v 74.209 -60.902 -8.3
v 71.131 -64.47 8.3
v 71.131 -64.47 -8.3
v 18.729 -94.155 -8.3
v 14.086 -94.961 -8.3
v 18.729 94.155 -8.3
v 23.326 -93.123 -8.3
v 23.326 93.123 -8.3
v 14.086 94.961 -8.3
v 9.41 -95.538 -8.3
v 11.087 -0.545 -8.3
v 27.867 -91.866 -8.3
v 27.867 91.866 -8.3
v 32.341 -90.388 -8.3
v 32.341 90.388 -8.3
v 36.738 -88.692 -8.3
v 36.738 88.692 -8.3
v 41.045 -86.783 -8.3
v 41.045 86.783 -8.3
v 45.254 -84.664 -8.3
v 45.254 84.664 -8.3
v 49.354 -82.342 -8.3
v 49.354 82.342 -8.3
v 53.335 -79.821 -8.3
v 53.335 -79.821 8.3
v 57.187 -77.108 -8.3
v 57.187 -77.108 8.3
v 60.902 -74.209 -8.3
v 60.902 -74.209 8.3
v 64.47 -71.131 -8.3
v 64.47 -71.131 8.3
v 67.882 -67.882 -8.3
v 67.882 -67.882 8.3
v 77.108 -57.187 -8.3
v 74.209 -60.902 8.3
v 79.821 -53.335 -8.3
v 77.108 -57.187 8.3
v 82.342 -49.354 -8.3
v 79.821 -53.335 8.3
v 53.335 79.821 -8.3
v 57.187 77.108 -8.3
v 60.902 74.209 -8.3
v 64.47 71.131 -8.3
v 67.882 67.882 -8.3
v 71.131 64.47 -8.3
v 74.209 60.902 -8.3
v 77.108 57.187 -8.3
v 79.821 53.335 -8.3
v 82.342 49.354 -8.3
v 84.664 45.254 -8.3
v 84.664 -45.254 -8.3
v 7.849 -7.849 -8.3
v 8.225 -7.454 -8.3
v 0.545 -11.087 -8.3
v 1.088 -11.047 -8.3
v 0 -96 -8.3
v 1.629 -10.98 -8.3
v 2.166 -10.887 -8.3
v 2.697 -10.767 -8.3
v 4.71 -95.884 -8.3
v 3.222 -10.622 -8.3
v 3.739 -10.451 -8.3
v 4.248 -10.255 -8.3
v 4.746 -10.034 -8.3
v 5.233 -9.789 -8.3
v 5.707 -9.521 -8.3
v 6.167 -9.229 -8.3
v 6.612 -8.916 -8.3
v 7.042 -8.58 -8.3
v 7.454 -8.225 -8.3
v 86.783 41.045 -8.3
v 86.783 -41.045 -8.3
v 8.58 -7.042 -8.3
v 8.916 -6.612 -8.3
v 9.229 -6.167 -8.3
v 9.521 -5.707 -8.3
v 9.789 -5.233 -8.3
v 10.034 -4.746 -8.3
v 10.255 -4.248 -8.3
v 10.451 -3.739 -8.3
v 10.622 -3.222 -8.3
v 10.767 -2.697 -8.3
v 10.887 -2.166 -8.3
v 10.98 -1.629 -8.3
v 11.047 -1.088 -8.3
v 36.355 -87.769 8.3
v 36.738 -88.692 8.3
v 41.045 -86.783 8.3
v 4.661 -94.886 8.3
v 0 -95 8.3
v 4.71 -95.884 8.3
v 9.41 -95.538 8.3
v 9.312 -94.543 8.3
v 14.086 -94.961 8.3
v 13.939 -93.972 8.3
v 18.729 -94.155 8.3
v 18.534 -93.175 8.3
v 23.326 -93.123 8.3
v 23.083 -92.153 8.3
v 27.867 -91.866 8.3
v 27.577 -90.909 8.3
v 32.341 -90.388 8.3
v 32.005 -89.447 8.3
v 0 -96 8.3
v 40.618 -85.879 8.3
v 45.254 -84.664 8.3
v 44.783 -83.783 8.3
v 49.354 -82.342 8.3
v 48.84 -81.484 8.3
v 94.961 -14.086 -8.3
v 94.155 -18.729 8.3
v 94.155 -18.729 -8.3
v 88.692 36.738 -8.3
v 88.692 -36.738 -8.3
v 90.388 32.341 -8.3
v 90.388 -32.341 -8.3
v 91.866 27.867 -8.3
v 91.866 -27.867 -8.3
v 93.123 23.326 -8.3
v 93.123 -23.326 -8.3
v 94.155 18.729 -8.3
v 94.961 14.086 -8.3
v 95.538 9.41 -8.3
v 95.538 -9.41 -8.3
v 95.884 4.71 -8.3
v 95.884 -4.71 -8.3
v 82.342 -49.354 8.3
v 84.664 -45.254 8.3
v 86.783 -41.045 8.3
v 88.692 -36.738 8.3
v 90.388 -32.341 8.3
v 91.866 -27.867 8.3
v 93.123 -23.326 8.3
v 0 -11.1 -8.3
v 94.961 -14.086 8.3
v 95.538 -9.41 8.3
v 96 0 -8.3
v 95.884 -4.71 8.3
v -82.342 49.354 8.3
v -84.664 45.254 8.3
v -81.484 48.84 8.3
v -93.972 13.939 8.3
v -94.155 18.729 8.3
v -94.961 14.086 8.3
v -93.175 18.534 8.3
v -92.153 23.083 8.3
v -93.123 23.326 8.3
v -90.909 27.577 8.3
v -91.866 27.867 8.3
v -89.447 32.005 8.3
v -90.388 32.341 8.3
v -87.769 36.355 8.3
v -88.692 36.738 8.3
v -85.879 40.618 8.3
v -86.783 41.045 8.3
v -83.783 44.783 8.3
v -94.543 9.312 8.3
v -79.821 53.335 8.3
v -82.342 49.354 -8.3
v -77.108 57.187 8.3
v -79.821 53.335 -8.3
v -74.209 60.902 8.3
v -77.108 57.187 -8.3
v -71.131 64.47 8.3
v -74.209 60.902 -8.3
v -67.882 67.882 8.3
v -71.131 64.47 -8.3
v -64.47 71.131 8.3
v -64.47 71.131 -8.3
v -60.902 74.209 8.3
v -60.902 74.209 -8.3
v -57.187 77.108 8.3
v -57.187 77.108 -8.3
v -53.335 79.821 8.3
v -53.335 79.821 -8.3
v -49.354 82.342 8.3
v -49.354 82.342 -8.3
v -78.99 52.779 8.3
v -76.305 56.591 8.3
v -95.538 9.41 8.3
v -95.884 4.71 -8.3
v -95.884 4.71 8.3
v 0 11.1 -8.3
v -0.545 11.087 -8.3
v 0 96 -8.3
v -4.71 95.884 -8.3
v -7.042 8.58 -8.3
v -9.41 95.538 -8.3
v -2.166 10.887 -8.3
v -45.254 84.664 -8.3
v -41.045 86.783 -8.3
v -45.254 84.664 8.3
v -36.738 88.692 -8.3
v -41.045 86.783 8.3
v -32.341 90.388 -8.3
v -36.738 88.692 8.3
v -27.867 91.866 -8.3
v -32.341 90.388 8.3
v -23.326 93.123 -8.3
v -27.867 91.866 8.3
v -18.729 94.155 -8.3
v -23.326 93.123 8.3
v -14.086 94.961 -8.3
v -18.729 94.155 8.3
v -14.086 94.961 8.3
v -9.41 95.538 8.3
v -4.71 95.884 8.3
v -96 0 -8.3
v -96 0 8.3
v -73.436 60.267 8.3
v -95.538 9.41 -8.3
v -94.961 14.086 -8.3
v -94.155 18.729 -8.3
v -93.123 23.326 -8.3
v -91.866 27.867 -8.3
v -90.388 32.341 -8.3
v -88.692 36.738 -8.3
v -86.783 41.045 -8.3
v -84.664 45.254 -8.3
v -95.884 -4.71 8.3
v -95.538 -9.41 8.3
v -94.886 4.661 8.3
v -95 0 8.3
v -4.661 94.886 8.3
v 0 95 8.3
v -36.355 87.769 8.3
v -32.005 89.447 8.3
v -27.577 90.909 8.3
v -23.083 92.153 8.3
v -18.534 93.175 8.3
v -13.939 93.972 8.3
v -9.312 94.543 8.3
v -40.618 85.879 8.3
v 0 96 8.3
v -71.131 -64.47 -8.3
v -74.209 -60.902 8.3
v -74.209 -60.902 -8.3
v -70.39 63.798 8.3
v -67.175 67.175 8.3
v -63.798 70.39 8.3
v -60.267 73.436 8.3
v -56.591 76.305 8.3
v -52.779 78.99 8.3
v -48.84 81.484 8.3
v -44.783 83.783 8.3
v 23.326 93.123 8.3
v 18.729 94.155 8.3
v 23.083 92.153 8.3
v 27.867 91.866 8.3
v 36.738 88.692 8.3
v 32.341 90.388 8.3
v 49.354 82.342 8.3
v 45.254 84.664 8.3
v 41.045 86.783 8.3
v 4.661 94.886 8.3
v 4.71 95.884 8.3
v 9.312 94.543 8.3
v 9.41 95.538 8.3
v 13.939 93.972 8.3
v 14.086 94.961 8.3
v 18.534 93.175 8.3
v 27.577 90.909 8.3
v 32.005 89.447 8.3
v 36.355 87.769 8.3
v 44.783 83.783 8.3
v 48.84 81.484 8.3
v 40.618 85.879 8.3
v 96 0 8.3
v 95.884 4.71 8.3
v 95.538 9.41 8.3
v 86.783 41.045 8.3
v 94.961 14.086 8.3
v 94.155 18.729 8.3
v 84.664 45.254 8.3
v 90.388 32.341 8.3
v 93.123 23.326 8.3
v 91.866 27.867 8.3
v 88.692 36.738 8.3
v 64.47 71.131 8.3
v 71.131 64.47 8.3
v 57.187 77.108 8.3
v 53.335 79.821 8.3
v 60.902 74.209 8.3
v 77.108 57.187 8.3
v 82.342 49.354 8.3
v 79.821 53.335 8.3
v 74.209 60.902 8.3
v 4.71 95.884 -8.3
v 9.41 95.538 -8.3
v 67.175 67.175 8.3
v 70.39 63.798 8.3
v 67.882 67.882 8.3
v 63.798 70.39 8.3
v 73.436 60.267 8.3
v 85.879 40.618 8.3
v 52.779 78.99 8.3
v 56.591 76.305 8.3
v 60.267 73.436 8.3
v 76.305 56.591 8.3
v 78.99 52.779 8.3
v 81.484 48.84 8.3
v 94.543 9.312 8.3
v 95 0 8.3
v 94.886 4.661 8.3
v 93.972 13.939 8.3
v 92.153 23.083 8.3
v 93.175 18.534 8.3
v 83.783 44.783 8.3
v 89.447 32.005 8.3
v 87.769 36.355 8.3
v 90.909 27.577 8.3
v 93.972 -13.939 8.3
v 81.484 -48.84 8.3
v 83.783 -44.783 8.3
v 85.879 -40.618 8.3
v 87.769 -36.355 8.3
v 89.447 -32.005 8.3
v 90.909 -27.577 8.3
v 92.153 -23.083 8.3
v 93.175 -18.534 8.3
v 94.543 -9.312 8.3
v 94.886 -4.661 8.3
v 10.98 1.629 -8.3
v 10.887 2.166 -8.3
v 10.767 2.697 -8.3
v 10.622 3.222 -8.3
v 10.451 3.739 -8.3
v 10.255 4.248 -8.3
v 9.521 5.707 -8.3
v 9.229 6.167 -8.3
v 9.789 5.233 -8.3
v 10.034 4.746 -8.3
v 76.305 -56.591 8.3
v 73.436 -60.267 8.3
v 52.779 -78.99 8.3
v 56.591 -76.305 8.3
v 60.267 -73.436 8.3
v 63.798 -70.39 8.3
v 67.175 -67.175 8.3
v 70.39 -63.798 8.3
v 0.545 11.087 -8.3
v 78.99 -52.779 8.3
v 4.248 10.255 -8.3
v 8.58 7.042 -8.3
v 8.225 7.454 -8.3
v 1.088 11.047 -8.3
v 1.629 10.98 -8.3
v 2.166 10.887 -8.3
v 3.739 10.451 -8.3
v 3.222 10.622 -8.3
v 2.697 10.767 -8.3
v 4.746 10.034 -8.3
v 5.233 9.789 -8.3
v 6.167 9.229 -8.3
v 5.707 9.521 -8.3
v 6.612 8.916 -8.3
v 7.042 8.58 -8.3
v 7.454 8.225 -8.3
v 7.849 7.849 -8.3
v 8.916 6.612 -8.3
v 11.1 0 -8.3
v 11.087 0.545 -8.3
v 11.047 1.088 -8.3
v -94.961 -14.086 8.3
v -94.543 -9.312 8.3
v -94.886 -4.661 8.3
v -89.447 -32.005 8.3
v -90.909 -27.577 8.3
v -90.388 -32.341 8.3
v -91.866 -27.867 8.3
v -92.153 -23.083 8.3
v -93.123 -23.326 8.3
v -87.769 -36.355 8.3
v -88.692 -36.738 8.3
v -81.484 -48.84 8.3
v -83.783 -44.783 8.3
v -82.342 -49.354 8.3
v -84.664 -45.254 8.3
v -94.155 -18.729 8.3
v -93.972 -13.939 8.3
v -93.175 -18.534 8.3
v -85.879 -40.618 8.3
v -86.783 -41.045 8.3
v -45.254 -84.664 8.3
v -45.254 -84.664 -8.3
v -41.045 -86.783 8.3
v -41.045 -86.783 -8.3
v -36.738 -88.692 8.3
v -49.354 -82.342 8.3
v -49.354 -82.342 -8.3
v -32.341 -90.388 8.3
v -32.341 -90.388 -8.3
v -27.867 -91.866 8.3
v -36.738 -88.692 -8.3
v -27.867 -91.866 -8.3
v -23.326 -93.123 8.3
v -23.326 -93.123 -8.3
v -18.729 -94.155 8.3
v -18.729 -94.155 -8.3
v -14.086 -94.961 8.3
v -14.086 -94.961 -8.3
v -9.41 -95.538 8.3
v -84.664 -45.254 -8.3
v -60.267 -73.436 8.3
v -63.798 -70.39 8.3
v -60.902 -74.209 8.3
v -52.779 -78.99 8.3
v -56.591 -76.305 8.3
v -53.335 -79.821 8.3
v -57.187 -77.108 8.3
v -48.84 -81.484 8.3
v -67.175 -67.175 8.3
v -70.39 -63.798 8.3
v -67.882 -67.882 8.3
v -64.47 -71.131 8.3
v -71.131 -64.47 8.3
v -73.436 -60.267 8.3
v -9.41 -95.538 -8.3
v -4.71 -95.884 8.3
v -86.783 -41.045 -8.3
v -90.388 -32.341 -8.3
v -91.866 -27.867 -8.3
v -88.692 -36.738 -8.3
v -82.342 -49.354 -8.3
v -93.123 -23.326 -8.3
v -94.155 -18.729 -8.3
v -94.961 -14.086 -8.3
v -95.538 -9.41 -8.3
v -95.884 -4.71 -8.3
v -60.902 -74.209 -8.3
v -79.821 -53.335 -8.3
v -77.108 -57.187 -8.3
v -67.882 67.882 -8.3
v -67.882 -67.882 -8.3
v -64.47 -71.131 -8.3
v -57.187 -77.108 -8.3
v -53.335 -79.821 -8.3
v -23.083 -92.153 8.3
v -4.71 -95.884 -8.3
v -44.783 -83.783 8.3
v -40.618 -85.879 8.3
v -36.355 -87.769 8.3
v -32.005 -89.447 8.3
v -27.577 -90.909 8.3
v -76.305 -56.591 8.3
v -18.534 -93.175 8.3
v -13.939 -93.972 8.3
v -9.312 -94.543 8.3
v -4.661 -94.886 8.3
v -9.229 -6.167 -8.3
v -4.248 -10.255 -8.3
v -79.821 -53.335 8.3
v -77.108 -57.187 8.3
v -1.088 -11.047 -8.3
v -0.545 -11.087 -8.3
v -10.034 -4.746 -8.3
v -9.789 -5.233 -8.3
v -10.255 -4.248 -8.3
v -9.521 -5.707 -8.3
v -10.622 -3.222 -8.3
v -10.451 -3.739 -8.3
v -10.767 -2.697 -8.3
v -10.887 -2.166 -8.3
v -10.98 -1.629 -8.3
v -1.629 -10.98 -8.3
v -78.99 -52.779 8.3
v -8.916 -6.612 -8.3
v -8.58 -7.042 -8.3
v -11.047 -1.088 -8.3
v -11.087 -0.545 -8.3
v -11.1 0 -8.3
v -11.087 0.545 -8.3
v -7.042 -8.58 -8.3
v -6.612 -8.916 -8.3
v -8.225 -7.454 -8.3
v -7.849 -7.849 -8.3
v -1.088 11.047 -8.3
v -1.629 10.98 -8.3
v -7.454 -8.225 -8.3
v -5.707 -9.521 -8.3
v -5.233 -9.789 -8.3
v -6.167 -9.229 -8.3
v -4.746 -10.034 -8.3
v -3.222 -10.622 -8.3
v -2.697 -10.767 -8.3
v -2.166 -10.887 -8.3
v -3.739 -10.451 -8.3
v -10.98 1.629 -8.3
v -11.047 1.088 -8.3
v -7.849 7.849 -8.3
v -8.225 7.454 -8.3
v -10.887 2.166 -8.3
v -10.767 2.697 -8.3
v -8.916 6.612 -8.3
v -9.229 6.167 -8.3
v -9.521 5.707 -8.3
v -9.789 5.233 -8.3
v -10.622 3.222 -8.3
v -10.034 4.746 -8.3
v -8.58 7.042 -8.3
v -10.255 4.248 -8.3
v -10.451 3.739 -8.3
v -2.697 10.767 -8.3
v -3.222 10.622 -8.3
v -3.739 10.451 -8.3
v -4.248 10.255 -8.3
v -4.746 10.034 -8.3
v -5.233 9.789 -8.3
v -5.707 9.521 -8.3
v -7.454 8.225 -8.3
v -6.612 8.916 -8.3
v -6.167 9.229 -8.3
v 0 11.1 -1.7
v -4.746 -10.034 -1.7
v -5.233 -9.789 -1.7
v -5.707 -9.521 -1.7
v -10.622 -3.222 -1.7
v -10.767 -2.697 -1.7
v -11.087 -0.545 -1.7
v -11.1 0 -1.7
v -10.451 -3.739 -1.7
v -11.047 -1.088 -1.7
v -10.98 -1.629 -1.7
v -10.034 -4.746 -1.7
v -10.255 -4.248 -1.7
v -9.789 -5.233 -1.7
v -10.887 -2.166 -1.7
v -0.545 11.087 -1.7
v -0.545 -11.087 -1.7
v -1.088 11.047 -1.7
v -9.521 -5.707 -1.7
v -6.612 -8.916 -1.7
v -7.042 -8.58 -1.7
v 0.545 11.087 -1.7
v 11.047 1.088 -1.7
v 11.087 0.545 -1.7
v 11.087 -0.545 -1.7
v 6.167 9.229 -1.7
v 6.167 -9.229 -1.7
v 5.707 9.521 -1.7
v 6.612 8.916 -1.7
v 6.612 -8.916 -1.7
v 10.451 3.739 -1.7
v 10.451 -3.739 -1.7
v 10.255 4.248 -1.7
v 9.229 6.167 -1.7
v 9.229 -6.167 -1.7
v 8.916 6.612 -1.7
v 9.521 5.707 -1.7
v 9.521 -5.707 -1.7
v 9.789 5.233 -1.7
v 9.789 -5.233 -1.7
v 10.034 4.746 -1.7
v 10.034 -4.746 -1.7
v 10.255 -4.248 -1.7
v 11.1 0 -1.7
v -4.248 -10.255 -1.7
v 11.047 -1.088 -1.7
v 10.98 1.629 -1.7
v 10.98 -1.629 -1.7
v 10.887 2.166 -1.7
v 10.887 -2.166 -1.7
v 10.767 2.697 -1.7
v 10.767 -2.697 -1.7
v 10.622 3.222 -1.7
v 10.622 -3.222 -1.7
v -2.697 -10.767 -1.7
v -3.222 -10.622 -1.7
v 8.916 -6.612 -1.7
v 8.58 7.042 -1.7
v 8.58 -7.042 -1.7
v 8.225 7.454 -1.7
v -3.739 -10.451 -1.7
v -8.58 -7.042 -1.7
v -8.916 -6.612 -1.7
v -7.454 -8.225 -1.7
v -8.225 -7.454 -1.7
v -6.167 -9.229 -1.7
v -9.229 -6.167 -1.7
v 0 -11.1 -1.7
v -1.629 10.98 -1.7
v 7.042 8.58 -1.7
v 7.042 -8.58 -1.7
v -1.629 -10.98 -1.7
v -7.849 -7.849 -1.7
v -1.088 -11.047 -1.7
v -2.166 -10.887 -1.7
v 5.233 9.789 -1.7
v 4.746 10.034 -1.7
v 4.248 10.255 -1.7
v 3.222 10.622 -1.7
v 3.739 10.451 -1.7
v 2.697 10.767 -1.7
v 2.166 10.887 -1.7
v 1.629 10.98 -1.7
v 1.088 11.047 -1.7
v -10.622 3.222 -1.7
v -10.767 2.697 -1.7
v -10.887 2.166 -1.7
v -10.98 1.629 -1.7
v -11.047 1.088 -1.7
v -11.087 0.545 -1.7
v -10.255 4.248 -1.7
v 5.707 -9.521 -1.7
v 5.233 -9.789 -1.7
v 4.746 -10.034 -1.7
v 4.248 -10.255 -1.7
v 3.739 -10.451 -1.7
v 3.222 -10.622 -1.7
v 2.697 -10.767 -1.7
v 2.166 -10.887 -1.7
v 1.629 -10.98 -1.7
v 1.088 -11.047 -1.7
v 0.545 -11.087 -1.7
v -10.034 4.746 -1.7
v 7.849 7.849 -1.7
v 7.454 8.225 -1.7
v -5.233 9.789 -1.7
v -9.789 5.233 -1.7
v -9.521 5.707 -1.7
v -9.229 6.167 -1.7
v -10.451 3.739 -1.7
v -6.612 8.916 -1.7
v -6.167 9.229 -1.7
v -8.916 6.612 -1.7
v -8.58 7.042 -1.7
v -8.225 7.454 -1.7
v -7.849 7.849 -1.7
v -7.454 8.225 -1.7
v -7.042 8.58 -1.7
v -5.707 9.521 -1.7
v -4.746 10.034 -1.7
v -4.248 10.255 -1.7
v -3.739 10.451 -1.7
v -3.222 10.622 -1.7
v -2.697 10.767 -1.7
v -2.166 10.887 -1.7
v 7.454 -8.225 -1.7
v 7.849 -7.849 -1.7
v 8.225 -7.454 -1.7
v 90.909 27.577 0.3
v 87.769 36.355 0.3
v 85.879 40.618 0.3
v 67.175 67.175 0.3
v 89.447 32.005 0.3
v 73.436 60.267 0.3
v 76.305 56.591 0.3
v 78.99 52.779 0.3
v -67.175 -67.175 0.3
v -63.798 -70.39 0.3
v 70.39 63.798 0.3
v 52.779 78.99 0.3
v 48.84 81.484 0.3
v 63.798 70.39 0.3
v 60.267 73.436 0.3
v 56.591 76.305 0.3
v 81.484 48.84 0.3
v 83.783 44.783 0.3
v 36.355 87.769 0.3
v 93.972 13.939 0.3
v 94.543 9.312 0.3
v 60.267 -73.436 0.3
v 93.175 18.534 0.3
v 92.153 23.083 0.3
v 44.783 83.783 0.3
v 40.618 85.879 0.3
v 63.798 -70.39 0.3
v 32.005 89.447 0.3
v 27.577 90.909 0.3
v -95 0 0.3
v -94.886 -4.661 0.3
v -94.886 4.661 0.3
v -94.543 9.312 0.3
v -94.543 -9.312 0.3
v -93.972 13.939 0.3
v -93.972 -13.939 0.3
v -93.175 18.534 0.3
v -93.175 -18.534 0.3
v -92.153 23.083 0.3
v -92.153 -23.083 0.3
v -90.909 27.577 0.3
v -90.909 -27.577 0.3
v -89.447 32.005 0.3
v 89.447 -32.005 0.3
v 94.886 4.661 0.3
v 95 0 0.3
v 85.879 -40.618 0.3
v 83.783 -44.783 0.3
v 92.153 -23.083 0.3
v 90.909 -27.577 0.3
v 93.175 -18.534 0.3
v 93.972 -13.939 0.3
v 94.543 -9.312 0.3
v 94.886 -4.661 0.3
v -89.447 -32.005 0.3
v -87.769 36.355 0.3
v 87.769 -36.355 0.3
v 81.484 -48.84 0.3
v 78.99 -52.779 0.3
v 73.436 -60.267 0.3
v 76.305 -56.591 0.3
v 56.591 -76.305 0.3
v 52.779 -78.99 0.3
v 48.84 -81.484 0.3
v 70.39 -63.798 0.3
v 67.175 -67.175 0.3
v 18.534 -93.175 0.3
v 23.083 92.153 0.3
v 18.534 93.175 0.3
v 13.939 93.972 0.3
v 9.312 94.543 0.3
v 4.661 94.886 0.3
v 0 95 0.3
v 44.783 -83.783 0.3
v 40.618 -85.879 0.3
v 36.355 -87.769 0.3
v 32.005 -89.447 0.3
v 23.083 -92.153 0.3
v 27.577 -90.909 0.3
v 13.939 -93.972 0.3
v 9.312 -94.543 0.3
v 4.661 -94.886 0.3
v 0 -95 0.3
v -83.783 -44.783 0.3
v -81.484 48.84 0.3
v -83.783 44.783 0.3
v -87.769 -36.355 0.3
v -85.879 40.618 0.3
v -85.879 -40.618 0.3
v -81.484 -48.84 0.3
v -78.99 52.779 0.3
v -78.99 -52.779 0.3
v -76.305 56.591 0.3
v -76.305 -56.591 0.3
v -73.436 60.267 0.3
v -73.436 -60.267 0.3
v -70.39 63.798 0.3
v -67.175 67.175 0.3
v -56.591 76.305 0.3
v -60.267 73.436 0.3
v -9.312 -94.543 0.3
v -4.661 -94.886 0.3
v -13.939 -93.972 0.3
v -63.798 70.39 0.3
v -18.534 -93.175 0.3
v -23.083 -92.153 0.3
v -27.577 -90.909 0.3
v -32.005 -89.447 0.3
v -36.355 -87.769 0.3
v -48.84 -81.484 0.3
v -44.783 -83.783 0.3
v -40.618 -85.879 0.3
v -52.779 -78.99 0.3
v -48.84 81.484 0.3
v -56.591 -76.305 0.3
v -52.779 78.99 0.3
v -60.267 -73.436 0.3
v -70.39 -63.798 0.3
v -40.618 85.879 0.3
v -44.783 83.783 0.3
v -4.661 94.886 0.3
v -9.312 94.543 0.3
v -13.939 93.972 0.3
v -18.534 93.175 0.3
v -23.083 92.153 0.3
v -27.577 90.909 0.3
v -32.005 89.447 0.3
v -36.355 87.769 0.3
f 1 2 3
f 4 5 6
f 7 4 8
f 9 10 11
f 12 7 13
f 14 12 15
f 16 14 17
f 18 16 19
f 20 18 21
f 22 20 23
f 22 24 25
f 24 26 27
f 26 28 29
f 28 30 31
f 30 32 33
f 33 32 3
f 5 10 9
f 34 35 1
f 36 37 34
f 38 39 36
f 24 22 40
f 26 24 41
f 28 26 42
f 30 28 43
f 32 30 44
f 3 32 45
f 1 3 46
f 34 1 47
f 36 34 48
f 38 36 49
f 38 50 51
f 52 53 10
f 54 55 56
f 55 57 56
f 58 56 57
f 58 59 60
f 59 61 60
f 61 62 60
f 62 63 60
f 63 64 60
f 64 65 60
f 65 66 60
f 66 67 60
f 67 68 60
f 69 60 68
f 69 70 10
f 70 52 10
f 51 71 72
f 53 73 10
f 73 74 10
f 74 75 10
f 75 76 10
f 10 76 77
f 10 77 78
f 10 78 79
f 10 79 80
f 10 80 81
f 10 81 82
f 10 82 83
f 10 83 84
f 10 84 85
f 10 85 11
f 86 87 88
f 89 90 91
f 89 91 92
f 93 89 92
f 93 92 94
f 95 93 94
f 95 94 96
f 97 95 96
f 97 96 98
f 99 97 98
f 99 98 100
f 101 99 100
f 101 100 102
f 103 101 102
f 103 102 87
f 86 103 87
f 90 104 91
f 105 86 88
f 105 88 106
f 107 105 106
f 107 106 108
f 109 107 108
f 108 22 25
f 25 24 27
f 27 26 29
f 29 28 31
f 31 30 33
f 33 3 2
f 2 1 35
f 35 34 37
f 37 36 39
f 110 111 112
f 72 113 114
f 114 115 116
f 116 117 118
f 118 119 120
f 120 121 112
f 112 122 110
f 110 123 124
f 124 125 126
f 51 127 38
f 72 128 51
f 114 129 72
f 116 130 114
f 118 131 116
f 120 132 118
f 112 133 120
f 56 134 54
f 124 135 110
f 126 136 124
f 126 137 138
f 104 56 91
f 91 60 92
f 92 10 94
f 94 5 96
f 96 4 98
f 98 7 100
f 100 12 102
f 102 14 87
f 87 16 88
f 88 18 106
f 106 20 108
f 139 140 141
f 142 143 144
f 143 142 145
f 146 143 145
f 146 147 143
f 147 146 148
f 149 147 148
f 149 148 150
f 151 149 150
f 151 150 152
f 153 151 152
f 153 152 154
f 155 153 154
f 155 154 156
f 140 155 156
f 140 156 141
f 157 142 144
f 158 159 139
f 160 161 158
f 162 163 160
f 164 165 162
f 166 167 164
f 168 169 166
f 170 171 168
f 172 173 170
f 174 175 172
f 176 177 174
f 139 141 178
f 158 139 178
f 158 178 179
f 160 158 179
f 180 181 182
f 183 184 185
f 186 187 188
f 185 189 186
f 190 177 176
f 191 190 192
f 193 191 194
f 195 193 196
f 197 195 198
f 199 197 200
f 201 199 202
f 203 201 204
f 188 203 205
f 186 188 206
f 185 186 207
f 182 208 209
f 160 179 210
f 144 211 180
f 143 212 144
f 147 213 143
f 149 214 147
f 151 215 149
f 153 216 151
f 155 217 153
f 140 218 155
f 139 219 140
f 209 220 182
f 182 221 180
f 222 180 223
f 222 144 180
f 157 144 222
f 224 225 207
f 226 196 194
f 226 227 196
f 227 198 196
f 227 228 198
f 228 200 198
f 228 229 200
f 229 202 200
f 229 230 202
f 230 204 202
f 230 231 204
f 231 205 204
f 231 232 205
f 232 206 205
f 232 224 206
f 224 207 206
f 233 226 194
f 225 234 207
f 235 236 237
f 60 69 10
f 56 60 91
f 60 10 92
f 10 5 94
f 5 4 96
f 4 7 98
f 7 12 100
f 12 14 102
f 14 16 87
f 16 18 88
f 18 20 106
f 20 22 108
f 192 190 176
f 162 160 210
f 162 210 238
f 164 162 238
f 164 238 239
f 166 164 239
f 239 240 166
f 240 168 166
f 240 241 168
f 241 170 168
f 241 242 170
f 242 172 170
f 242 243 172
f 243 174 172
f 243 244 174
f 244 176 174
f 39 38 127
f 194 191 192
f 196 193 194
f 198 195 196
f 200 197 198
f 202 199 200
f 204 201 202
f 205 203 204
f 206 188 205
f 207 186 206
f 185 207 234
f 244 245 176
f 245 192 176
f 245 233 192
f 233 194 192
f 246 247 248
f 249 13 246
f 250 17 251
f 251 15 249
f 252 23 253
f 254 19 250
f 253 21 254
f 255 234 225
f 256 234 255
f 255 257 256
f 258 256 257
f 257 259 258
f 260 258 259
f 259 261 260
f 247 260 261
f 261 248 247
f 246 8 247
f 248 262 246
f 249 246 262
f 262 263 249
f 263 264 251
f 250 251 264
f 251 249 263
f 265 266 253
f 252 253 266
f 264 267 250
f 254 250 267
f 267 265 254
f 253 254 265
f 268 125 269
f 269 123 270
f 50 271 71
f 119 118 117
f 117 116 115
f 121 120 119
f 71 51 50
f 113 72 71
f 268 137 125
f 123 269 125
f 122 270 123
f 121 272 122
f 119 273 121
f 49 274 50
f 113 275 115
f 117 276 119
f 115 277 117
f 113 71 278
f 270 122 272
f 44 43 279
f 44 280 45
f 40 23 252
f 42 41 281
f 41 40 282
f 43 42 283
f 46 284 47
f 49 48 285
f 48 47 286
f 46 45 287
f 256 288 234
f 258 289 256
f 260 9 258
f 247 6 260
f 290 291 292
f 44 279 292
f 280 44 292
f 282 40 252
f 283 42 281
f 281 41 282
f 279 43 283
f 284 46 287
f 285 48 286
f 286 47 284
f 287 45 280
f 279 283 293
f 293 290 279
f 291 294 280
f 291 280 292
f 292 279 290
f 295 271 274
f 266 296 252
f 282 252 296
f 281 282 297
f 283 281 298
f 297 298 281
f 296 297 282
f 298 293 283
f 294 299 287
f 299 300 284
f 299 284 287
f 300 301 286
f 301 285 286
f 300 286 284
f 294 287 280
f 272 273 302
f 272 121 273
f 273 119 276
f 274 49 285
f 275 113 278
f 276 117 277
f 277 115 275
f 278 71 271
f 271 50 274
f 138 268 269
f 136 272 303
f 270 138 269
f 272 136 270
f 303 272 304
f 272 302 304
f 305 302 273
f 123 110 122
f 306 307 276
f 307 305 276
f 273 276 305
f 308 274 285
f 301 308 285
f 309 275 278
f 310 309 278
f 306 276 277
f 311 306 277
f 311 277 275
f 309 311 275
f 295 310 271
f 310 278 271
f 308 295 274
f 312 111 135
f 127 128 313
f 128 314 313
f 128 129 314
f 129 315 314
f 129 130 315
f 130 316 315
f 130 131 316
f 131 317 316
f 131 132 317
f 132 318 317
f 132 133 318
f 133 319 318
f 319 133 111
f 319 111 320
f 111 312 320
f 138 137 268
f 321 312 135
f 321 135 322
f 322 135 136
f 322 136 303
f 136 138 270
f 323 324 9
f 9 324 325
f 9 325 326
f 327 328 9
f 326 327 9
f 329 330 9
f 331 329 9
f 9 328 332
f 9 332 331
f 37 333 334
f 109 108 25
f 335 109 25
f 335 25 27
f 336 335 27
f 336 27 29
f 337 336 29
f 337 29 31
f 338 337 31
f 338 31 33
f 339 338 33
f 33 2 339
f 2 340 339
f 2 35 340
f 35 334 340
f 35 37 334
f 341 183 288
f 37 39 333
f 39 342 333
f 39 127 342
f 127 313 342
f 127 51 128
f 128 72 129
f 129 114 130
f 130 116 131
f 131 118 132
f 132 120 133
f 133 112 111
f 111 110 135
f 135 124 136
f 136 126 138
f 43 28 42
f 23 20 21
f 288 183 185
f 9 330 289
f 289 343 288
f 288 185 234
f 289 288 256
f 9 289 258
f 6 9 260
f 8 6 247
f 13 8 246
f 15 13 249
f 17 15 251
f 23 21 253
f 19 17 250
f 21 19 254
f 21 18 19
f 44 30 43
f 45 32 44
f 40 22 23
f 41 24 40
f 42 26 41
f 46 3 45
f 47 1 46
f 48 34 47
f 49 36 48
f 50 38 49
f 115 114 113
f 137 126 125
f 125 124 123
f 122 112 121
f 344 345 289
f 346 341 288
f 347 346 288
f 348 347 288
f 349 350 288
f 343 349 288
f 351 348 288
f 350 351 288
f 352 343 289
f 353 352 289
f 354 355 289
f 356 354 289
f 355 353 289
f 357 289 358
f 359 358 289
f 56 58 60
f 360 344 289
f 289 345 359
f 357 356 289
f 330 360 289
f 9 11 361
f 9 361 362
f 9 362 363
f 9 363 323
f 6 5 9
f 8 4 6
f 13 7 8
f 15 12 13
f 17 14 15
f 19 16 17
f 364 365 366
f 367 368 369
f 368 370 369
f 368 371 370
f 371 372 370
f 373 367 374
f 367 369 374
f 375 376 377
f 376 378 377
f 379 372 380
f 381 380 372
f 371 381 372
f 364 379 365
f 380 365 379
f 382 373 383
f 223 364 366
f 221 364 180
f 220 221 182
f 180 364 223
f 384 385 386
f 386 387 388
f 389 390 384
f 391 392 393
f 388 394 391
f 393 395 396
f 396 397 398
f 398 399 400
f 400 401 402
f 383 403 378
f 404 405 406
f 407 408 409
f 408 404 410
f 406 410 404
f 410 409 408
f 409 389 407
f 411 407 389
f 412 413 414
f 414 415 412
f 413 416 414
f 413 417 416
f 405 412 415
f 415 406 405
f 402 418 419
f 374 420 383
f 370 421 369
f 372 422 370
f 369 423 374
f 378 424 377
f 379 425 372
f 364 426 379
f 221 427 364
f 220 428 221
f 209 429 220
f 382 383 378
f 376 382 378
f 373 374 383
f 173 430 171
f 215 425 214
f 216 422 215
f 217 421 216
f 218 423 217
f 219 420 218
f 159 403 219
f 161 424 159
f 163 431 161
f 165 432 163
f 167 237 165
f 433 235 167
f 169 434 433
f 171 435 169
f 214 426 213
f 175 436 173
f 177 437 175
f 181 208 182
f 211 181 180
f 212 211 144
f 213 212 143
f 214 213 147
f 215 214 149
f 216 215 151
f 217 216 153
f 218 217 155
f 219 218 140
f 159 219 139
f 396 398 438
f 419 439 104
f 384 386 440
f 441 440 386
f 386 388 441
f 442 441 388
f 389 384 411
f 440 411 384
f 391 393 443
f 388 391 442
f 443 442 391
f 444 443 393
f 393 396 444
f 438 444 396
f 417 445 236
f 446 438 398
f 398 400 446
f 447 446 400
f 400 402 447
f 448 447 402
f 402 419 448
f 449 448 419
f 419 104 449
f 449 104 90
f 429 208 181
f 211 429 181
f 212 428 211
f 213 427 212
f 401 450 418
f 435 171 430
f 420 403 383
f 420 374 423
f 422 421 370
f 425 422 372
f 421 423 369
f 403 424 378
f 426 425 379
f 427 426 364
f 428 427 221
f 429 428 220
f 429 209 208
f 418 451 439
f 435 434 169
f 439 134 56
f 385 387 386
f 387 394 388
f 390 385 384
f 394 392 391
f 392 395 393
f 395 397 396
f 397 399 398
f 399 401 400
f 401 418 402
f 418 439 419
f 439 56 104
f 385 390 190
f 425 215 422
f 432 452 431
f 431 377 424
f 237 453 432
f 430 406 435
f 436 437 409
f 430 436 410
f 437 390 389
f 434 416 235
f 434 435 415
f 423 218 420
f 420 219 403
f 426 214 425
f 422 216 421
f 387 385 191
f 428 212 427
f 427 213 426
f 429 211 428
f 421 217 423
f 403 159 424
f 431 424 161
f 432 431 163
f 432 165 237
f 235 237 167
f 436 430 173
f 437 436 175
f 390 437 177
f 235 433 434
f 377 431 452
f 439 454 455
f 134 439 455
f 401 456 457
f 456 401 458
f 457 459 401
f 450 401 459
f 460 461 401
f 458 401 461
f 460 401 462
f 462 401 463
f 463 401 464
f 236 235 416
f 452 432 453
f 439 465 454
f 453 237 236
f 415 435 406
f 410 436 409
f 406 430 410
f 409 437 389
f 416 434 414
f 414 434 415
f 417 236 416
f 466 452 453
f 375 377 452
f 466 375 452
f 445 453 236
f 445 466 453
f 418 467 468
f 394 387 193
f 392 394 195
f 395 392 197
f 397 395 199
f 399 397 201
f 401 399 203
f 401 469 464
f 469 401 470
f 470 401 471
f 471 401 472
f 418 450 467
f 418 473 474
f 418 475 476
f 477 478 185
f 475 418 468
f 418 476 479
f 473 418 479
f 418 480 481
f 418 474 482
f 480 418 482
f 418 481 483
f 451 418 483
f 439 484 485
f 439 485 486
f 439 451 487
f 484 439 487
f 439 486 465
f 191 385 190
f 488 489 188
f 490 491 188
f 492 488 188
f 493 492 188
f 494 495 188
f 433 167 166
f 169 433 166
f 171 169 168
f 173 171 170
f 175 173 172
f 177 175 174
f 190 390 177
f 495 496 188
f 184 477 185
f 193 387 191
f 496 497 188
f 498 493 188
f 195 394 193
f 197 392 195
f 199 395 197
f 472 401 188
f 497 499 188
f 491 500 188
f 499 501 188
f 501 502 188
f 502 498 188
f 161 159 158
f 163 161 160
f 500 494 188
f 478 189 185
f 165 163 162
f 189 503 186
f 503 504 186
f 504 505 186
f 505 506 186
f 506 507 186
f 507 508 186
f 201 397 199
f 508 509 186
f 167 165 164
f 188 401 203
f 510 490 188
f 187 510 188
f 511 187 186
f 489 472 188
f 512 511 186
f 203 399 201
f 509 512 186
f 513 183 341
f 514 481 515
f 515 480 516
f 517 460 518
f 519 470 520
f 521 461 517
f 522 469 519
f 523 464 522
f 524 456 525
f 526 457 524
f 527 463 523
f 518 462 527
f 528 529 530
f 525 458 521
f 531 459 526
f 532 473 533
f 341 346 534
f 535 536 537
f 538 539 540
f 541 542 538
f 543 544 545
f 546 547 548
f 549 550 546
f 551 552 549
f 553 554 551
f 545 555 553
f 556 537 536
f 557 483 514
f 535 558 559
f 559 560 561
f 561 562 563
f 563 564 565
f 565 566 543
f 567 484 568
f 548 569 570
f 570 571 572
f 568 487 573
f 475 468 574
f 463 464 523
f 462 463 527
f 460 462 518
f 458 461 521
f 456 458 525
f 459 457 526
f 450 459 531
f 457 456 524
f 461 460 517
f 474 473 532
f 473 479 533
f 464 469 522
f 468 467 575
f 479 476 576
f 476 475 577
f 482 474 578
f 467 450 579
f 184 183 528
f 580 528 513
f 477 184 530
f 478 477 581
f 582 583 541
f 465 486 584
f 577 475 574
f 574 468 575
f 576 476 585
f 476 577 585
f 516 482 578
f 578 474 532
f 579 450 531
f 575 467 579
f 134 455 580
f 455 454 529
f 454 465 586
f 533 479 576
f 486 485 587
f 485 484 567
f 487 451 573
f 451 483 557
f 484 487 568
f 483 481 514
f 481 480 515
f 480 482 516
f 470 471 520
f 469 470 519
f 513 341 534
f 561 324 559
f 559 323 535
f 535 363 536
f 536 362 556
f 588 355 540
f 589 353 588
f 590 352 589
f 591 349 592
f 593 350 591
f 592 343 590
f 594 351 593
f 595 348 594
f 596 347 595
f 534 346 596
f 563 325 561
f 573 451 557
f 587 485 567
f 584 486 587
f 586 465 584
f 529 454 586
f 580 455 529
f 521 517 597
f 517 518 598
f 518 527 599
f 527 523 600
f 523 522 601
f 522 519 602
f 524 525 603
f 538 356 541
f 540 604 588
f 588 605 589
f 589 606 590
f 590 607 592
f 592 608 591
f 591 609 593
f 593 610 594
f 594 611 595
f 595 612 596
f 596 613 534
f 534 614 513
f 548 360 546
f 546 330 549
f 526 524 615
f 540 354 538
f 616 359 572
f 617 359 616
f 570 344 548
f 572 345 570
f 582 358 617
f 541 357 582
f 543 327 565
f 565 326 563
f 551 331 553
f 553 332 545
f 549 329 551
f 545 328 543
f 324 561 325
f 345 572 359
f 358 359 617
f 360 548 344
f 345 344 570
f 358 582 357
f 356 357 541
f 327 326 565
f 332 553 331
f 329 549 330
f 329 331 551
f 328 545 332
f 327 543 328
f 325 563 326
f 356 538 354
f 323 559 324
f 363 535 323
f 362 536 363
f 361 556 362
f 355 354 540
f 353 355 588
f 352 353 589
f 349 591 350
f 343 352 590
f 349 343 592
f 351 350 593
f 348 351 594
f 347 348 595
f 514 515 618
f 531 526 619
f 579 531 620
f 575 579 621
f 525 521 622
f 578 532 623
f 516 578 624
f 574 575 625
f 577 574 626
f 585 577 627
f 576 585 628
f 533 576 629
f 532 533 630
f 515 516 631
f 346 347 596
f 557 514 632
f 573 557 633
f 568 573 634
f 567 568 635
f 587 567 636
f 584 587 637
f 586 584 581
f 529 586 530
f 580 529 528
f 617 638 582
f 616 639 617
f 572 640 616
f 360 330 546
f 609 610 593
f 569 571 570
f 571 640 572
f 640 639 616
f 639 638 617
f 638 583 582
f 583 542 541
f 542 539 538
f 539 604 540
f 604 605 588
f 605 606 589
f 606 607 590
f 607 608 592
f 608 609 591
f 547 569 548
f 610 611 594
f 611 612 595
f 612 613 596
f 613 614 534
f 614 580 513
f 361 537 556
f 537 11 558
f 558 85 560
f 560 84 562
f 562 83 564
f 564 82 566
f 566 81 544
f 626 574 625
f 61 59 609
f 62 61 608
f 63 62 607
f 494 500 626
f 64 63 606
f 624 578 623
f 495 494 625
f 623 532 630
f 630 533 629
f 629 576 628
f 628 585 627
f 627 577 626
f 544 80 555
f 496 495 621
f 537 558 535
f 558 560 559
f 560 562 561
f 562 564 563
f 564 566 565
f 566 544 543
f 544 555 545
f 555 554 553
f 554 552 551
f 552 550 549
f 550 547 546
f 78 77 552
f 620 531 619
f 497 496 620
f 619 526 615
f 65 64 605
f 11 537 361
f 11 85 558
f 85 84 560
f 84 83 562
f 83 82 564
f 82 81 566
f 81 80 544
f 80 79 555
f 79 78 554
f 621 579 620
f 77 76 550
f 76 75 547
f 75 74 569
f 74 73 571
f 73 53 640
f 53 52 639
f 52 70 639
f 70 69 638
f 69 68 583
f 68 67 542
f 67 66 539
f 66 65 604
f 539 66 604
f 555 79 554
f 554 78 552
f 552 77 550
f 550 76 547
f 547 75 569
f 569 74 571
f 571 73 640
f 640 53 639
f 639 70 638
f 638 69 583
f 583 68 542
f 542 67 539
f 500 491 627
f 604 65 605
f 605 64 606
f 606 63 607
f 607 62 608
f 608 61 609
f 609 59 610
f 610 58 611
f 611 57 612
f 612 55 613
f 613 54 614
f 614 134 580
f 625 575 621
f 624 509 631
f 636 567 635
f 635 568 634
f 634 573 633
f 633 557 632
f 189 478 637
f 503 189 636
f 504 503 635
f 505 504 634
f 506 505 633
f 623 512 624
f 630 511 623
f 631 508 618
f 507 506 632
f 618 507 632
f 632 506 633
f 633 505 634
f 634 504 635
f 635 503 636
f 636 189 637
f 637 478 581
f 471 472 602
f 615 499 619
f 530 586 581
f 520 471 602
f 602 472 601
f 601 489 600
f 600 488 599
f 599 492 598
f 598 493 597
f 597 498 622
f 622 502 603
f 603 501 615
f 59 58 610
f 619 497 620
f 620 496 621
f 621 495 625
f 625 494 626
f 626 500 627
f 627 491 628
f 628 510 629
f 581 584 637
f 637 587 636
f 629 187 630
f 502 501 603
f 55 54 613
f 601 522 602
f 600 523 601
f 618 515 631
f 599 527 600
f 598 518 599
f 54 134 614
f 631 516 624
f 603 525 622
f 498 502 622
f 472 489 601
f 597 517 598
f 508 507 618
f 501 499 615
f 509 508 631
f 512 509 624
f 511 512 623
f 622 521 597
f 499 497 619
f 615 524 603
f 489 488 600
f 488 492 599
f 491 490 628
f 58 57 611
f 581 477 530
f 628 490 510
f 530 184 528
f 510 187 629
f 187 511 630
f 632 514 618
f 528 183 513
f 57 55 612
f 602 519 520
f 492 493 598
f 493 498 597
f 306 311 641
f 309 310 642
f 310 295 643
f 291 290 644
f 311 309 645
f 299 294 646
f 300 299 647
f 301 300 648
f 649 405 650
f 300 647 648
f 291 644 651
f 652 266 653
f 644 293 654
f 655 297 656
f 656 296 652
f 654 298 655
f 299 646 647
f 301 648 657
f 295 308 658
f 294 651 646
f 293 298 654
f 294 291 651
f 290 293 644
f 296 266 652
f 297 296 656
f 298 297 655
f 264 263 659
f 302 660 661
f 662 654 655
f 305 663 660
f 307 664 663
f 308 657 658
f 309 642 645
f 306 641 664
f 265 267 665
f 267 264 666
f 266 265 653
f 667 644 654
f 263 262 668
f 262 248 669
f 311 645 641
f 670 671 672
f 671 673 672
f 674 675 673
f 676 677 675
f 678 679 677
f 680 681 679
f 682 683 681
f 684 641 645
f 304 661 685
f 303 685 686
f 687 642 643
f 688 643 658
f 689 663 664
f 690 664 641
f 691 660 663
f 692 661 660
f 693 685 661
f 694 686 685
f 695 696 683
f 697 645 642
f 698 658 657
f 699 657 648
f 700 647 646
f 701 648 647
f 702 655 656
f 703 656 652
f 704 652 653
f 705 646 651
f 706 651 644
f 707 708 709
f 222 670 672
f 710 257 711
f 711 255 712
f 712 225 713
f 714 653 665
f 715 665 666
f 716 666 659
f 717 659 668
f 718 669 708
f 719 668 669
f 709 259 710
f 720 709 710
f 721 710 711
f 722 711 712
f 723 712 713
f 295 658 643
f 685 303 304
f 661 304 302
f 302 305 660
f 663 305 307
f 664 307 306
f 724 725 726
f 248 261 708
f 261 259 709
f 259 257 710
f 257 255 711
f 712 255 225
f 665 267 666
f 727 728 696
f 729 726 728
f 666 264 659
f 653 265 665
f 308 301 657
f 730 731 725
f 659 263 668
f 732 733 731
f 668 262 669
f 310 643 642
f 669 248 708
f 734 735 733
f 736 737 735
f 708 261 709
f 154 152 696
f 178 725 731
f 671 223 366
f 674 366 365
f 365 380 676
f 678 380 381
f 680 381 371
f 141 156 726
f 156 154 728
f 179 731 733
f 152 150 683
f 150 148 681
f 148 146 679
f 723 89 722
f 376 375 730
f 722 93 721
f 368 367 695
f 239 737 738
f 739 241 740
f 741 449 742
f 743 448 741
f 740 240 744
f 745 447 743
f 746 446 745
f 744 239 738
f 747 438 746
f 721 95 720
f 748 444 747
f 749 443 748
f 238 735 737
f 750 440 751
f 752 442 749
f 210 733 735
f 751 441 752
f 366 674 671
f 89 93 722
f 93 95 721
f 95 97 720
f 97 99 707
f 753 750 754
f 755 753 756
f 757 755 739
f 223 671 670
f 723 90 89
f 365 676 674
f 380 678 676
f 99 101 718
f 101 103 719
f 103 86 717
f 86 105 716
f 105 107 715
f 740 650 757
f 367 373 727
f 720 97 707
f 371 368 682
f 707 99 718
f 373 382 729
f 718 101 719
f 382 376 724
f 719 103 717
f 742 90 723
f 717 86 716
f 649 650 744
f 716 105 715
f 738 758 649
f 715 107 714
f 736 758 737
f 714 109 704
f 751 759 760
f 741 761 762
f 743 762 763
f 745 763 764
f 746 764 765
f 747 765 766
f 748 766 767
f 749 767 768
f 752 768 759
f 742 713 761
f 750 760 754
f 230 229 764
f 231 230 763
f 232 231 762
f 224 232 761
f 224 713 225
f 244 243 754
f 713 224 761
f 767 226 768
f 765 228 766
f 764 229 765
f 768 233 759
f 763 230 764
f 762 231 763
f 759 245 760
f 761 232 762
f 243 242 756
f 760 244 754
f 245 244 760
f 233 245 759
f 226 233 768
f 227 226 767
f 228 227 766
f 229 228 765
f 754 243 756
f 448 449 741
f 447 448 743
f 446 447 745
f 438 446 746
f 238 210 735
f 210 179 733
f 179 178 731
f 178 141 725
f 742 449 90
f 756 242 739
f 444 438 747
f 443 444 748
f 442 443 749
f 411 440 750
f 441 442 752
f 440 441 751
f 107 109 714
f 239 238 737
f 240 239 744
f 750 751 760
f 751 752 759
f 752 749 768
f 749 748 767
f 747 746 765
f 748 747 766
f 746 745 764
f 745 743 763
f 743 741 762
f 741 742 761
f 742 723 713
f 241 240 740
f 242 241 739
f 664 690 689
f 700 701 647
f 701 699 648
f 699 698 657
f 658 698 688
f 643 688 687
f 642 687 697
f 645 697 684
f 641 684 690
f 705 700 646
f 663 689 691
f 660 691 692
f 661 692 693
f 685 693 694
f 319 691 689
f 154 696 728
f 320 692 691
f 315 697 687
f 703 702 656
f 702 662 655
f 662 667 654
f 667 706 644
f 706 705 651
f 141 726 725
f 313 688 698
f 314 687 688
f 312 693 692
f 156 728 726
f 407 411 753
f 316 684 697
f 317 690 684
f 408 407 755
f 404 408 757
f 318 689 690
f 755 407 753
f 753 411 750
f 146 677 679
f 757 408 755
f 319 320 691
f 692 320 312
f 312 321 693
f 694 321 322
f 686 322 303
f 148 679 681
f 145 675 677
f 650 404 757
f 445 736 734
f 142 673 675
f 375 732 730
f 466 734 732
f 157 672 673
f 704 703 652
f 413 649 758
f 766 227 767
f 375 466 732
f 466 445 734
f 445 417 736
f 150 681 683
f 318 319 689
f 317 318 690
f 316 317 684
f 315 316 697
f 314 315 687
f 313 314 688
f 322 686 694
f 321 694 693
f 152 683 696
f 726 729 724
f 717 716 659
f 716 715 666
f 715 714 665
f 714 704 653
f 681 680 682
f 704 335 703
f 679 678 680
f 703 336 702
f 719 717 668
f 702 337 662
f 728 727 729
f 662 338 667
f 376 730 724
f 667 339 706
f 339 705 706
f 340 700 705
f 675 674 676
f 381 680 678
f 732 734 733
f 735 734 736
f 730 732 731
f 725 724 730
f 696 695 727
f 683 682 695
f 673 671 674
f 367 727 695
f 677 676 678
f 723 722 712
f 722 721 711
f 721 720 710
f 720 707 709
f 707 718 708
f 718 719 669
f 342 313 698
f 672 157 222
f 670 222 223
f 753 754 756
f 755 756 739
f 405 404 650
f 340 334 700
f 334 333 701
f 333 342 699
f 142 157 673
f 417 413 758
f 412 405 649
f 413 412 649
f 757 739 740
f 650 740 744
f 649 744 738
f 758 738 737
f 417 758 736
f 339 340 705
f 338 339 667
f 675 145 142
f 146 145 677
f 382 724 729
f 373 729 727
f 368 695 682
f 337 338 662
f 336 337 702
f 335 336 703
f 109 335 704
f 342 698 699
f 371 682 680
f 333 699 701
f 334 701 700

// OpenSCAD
$fn = $preview ? 32 : 128;

// Parameters
tolerance = 0.2;
diameter = 192;
thickness = 2;
bearingInnerDiameter = 8;
bearingOuterDiameter = 22 + tolerance;
bearingHeight = 7 - (tolerance * 2);
lipHeight = 8;

difference() {
    difference() {
        cylinder(d=diameter, h=lipHeight + bearingHeight + thickness, center=true);
        translate([0, 0, -((lipHeight + thickness) / 2)]) {
            cylinder(d=bearingOuterDiameter, h=bearingHeight, center=true);
        }
    }
    translate([0, 0, (bearingHeight + thickness) / 2]) {
        cylinder(d=diameter - thickness, h=lipHeight, center=true);
    }
}
